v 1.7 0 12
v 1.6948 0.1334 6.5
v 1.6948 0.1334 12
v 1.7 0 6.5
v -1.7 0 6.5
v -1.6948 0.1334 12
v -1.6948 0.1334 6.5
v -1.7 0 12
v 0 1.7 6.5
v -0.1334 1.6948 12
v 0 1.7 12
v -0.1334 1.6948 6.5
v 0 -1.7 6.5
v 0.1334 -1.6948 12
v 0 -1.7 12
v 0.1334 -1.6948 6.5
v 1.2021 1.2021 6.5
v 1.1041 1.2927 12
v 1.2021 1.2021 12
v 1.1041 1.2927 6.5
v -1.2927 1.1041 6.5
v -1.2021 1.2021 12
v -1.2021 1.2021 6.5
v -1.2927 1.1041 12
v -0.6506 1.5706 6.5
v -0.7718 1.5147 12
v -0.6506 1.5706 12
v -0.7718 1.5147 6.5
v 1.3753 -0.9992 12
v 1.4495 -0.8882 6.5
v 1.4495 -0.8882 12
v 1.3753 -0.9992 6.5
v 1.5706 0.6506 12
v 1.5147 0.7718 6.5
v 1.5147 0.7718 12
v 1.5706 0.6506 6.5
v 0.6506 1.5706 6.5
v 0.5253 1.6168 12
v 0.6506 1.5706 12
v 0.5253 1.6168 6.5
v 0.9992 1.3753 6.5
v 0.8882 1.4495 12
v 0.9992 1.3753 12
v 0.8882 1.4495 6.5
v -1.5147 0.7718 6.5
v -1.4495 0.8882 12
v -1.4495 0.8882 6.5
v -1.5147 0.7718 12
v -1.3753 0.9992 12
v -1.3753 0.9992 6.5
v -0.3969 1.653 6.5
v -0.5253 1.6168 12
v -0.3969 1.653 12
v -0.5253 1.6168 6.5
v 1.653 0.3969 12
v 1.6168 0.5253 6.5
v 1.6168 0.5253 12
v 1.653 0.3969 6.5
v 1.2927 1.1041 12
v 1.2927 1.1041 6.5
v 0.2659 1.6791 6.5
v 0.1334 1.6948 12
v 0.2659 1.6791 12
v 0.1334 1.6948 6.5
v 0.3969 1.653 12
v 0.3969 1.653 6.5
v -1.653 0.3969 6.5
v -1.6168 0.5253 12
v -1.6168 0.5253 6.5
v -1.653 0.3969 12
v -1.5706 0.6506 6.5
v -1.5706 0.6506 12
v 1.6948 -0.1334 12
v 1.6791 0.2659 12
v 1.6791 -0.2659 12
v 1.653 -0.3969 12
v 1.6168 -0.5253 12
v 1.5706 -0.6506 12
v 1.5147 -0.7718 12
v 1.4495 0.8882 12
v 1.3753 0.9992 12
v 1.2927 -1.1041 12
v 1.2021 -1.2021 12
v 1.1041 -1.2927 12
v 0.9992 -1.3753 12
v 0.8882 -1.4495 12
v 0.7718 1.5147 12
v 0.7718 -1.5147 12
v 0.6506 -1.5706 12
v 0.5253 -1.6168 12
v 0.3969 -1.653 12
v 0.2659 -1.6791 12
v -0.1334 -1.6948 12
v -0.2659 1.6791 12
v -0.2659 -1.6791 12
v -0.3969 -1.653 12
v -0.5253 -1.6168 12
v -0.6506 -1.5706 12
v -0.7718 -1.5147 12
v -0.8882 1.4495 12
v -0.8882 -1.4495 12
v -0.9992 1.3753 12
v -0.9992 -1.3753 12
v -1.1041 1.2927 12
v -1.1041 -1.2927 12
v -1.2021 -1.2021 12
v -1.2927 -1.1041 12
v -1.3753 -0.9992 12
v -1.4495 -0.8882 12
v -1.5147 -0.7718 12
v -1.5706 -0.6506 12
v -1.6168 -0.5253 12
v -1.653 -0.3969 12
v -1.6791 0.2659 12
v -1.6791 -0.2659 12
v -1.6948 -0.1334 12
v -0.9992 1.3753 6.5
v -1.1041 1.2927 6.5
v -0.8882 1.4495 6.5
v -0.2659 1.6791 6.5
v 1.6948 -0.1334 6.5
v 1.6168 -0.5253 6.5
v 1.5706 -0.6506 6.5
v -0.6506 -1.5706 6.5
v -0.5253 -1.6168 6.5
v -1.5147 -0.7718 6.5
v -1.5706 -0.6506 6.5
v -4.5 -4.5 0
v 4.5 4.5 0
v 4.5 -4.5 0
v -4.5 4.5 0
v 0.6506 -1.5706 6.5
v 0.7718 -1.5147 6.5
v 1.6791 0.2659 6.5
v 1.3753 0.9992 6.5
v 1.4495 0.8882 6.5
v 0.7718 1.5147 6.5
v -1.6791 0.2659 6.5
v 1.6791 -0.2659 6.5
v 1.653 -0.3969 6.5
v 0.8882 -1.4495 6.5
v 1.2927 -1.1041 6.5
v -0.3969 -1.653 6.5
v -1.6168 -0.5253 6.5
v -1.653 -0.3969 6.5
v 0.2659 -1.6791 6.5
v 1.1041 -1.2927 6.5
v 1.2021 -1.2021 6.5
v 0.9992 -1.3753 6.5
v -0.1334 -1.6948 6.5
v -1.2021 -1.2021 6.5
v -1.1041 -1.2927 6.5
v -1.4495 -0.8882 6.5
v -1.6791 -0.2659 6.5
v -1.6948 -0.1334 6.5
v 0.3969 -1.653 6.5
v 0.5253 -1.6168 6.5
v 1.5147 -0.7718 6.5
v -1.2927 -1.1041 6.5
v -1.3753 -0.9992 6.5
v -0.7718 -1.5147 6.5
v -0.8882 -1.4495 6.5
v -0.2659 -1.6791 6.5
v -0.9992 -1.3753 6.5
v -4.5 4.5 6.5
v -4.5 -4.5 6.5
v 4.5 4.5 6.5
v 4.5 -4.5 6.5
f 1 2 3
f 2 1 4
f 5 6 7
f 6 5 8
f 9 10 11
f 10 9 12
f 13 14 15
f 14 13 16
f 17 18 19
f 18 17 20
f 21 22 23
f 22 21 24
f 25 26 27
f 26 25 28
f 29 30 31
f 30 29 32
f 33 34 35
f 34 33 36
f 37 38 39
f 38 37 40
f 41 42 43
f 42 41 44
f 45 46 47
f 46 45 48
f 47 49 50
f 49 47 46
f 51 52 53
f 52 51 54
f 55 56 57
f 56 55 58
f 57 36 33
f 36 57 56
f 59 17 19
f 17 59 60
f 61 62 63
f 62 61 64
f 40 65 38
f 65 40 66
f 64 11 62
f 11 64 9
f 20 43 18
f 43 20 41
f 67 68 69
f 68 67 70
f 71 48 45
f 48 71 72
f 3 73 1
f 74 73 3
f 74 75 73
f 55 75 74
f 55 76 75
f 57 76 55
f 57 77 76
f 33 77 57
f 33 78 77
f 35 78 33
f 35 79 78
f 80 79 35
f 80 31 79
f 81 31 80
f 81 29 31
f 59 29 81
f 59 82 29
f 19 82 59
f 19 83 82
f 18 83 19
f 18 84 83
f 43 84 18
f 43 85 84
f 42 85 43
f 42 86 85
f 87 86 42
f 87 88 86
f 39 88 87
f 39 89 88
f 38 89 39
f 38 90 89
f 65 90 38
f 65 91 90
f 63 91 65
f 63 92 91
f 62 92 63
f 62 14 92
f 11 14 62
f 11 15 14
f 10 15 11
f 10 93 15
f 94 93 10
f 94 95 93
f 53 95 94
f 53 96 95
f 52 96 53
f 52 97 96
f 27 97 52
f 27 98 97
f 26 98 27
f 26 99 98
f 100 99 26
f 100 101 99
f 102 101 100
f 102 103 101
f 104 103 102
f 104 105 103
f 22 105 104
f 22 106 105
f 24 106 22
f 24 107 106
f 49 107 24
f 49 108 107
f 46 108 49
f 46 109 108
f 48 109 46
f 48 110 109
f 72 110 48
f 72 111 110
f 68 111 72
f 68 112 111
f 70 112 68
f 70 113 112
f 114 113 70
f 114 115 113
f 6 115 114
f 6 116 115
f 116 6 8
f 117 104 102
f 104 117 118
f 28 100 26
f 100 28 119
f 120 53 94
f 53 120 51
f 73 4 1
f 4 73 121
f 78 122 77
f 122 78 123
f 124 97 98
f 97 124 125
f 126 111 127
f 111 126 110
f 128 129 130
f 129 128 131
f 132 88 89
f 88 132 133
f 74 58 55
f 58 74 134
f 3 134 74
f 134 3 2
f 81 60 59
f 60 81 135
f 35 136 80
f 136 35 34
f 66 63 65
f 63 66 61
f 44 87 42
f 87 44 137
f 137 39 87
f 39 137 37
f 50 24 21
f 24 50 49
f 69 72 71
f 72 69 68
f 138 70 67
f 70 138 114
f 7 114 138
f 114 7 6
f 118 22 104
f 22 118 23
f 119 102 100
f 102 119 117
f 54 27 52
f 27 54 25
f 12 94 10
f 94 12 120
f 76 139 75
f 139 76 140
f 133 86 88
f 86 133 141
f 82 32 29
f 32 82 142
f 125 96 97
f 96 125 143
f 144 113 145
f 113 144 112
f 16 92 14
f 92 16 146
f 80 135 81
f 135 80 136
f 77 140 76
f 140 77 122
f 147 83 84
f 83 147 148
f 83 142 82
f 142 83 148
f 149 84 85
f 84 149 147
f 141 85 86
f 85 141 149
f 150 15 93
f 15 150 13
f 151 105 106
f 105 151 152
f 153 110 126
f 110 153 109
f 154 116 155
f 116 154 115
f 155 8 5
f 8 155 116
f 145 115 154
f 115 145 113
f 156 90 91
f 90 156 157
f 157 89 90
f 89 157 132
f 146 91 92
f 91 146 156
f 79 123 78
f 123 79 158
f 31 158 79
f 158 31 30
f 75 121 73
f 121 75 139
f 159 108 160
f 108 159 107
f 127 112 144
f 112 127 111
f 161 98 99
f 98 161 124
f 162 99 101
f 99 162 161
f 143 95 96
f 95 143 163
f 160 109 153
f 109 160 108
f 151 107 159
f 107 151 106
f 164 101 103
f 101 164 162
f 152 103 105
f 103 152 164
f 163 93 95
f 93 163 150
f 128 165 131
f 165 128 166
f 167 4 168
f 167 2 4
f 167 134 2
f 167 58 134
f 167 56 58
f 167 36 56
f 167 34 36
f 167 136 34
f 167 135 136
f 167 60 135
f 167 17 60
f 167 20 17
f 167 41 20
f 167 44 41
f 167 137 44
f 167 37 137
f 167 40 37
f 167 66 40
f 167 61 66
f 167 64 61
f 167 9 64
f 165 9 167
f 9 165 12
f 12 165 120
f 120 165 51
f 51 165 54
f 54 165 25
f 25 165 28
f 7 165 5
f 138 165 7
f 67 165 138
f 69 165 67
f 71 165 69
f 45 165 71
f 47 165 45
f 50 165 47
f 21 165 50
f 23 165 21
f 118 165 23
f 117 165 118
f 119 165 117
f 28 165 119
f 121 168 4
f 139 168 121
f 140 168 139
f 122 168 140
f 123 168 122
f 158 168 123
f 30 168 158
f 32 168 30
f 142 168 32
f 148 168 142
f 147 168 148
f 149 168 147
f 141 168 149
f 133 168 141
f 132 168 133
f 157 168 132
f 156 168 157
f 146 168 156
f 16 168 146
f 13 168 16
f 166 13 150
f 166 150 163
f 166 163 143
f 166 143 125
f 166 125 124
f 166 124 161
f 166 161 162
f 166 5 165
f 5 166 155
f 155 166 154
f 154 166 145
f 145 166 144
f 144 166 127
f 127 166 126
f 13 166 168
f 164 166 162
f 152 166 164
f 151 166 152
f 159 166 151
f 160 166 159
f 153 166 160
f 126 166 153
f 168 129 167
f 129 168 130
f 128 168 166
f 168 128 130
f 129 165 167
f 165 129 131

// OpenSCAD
$fn=80;

cylinder (d=3.4,h=12);
translate ([-4.5,-4.5,0]) cube ([9,9,6.5]);
